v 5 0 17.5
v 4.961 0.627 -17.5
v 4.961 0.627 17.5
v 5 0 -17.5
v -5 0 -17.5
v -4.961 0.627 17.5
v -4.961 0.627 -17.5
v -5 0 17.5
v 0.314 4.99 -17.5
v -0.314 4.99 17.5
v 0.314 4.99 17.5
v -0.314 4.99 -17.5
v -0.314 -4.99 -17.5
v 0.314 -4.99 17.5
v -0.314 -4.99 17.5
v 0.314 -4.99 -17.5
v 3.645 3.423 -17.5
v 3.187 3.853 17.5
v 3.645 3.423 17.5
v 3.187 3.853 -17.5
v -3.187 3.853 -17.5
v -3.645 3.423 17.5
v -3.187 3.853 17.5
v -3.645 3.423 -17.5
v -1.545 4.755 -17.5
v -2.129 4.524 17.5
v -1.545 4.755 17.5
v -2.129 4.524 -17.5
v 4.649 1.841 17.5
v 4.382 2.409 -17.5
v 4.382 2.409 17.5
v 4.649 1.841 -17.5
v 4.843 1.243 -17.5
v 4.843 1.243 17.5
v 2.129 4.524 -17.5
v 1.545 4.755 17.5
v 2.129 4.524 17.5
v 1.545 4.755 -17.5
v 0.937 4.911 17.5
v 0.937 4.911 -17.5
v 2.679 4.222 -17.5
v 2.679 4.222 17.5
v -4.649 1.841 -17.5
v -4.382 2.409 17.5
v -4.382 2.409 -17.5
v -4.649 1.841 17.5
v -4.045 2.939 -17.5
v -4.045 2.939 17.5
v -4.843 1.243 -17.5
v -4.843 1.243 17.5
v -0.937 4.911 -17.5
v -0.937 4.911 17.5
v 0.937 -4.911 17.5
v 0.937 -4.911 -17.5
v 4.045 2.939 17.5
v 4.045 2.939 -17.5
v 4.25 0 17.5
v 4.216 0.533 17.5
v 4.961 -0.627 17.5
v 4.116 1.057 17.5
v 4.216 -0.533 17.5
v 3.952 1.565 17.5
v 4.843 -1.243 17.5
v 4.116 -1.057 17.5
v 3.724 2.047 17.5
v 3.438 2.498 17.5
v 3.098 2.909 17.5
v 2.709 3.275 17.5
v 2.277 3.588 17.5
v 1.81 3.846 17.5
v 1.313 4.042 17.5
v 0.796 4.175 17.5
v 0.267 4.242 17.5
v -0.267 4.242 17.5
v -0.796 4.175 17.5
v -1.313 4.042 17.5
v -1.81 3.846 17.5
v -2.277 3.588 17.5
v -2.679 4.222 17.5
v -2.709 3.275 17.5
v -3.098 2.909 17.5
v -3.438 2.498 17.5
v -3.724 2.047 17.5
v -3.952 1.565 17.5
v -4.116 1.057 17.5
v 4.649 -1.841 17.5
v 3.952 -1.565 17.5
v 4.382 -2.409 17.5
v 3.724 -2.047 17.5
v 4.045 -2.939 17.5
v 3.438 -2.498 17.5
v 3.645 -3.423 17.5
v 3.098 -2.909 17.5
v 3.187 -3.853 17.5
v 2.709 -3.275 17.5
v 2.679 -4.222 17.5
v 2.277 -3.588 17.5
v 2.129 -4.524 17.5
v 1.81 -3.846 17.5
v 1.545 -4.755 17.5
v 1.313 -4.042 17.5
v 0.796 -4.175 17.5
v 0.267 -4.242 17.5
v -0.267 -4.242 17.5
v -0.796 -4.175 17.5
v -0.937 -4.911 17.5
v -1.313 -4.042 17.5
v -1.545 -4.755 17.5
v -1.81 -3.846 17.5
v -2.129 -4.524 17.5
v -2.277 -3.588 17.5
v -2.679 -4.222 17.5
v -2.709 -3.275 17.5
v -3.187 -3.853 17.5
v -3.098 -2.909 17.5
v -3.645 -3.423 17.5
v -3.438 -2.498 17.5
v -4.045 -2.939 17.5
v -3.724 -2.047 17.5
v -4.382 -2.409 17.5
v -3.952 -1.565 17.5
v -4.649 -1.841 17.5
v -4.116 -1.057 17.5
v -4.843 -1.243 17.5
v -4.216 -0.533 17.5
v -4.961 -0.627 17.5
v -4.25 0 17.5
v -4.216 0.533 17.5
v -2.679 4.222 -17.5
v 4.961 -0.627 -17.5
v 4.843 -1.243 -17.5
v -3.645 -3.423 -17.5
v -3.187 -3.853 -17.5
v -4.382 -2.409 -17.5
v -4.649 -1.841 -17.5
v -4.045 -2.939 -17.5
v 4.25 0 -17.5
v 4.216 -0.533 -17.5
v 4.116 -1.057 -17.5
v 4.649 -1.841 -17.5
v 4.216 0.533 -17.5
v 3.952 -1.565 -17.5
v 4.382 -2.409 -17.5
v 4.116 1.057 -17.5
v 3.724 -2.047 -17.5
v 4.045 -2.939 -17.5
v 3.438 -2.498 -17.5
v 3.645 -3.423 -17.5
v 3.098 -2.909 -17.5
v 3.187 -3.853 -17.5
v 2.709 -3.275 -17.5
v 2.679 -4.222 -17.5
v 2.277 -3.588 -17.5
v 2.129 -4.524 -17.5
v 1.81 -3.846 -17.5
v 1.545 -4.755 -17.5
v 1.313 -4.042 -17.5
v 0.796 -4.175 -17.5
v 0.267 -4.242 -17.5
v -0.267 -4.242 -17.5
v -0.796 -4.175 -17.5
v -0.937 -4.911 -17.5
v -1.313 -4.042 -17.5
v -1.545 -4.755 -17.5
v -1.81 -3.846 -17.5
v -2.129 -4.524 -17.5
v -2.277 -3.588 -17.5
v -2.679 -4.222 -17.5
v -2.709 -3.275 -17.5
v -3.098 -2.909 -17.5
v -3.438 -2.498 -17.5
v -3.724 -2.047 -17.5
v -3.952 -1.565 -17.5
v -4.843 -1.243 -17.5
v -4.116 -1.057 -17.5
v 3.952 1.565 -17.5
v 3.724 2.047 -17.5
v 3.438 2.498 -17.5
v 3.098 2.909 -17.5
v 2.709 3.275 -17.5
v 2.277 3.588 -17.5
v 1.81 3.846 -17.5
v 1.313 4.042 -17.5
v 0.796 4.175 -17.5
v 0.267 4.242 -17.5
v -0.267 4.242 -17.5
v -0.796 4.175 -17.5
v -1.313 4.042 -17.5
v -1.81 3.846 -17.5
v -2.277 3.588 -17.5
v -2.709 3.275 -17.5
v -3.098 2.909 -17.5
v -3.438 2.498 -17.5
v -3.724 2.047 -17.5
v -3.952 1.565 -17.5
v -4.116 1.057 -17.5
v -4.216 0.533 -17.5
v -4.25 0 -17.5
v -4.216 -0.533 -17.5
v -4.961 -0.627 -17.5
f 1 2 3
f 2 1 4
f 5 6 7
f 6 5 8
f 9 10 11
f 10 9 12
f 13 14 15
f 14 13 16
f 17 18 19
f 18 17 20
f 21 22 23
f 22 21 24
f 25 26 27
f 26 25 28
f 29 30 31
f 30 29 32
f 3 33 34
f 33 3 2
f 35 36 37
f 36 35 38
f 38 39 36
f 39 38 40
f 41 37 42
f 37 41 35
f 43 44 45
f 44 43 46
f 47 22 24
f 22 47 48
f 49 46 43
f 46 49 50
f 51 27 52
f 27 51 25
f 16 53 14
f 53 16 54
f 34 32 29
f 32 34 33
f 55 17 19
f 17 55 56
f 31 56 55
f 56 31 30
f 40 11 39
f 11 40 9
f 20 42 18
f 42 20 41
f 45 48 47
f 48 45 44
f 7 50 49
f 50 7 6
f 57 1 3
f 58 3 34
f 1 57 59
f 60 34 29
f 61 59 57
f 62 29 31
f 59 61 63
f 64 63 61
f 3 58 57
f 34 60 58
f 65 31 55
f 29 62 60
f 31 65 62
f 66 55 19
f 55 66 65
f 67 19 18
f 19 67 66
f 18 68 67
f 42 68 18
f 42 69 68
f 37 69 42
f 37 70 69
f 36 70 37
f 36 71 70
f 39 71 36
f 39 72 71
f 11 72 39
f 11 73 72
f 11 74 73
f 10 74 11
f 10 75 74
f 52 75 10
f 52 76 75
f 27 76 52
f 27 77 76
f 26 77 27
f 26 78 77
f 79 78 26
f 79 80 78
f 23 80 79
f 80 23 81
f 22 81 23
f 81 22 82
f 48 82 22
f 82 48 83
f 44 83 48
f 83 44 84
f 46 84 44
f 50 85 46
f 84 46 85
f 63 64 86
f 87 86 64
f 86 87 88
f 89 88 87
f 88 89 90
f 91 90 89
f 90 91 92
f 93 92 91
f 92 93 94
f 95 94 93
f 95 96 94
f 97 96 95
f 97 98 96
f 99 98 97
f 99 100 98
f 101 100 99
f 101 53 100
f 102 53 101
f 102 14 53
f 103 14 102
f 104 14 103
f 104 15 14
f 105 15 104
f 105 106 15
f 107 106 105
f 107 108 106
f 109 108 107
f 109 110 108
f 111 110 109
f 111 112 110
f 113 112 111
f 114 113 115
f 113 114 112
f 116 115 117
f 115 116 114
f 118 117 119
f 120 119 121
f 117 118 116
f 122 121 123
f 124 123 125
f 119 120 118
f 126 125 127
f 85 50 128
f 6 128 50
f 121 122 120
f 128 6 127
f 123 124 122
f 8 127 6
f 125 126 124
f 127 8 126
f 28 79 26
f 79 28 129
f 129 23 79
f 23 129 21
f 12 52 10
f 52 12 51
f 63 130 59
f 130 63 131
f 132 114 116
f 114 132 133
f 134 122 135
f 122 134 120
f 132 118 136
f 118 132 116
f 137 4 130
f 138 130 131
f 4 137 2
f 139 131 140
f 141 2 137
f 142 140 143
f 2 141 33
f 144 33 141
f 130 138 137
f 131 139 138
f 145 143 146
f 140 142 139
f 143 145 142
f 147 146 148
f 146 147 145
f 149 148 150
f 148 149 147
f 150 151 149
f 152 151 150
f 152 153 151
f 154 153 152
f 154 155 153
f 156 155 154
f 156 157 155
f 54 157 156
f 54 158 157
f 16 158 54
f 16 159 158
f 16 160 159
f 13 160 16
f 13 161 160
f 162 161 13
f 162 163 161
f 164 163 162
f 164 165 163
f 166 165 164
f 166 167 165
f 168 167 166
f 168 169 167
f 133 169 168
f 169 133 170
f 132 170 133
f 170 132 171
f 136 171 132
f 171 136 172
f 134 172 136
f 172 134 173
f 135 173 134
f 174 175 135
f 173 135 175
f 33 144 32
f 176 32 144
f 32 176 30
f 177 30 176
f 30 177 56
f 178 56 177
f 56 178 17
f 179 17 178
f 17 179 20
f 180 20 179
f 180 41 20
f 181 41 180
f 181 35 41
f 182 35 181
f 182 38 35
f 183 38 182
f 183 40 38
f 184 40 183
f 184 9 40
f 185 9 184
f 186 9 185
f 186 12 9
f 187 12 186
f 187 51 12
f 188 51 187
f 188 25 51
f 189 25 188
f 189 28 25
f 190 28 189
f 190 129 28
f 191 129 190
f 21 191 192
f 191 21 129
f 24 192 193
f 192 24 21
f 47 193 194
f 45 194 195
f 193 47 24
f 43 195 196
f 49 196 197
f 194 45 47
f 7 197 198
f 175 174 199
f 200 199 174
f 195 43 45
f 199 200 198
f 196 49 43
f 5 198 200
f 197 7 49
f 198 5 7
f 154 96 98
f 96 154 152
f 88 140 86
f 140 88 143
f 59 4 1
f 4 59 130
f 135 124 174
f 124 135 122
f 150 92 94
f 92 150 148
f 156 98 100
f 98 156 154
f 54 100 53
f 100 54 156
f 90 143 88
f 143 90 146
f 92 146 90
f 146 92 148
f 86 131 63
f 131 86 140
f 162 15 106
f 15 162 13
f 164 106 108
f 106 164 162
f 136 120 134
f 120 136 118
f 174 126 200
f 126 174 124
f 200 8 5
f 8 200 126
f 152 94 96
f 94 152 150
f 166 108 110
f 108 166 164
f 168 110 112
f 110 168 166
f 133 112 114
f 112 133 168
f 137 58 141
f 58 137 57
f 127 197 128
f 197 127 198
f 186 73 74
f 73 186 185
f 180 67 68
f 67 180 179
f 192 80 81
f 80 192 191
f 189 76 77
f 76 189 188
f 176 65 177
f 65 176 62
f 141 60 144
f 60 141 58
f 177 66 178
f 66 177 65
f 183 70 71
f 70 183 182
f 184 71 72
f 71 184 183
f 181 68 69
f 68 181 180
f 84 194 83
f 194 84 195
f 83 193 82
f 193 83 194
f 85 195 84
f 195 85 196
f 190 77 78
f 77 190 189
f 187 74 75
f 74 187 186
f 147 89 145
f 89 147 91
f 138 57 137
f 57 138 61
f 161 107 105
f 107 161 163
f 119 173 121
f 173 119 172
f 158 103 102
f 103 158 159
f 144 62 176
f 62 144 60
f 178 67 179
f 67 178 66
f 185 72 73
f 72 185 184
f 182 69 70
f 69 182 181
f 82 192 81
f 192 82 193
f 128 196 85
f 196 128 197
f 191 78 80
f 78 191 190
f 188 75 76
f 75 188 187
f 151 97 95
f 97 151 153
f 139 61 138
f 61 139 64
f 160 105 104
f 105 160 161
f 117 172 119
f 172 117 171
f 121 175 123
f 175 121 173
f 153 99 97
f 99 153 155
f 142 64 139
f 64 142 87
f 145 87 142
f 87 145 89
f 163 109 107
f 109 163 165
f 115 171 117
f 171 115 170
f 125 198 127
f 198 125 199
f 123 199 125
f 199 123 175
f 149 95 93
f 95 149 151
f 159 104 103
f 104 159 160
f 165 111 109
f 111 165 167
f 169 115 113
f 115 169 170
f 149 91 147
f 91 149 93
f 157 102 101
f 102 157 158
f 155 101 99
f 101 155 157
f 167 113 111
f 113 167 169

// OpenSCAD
$fn = 50;


difference() {
	union() {
		translate(v = [0, 0, -17.5000000000]) {
			cylinder(h = 35, r = 5.0000000000);
		}
	}
	union() {
		translate(v = [0, 0, -100.0000000000]) {
			cylinder(h = 200, r = 4.2500000000);
		}
	}
}
